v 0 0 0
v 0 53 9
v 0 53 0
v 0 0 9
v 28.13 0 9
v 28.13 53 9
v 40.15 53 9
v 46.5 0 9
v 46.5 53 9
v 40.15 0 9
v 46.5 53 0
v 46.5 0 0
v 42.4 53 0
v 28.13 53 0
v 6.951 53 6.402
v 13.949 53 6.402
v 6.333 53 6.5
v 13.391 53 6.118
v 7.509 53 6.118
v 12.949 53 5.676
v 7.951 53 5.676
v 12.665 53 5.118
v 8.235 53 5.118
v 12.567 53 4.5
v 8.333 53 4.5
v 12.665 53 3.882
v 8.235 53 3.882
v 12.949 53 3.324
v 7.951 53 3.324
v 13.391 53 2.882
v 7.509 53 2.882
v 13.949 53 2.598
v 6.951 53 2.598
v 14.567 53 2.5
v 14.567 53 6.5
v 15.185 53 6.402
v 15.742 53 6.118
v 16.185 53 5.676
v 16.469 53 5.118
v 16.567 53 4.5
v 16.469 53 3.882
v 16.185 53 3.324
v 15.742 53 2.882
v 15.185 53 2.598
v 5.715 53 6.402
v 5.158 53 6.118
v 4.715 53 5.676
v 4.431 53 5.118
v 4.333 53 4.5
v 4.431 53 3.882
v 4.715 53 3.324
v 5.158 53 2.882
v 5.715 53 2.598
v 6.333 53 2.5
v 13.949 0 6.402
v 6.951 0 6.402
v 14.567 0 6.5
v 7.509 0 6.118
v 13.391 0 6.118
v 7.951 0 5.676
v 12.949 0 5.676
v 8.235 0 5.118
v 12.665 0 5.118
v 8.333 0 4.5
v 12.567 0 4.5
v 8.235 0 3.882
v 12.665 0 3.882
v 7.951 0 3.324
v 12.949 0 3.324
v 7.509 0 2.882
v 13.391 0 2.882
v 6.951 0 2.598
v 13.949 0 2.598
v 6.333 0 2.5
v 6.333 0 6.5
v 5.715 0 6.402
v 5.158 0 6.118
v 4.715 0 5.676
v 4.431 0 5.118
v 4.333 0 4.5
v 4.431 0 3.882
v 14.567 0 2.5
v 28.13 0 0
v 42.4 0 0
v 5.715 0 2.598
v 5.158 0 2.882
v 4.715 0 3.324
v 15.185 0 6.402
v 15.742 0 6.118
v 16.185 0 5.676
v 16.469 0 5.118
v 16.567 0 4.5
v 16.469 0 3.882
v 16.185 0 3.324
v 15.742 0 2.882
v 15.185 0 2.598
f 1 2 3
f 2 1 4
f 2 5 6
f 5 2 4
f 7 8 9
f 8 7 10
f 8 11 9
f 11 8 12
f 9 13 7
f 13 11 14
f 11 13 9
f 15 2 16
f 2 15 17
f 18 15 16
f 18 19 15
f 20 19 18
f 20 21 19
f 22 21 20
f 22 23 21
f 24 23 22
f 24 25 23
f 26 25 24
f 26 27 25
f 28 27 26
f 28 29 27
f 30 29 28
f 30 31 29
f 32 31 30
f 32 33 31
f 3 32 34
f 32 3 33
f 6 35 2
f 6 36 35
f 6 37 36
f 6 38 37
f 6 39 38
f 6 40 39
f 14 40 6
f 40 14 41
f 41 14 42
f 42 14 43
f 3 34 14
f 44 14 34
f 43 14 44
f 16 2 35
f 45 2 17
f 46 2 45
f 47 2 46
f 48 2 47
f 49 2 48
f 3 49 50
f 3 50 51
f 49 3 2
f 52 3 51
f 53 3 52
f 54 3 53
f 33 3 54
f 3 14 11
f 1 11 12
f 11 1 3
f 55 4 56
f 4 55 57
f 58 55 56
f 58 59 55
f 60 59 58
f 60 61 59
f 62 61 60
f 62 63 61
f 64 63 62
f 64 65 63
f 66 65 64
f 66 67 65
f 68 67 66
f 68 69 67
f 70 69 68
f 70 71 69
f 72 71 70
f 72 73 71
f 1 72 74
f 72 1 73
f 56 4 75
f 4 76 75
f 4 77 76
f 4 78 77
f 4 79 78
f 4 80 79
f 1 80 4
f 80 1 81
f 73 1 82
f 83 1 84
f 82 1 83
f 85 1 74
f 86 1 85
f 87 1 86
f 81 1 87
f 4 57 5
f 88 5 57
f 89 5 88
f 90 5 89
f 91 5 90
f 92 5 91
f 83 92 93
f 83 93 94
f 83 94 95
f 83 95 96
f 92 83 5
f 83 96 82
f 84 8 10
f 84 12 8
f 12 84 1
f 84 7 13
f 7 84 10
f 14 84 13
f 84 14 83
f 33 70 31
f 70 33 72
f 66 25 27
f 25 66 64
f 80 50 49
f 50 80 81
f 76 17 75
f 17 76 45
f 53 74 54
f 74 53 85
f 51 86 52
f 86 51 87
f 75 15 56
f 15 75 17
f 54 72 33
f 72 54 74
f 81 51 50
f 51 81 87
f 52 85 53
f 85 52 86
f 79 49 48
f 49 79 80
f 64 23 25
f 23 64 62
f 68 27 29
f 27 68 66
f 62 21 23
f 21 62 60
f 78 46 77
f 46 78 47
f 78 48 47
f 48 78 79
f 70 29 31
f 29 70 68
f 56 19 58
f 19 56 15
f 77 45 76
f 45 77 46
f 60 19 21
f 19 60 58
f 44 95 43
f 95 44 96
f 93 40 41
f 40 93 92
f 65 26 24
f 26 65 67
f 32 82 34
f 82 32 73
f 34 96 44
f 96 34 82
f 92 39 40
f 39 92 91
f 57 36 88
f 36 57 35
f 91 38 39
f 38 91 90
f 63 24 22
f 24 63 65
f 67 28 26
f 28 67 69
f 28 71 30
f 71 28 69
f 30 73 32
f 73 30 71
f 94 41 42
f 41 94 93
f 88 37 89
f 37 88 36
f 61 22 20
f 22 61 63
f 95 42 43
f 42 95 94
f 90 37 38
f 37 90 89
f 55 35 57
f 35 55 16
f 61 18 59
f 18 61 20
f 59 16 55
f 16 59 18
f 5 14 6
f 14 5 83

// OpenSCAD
// file: chen_params.scad
main_board_width = 58;
main_board_thinkness = 3;
main_board_len = 70;

Chip_Extension=10;

up_board_x=main_board_width;
up_board_y=10;
up_board_z=50;

rack_thickness    = 10;
rack_movement_length = 25;
gear_scale = 0.8;
n1 = 20; //red gear number of teeth

n5 = 13;  //gray rack
mm_per_tooth = 5; //all meshing gears need the same mm_per_tooth (and the same pressure_angle)
tensioner_union_len =11;
servo_offset =  9;
servo_higeht = 30;
bracket_size=5;

bearing_rad = 1.7;
bearing_depth = 2.3;

prism_b = 12;
prism_a = 1.2 * prism_b ;
prism_h = prism_b * 0.8;  
prism_angle = atan(prism_h/(prism_a-prism_b)) ;
// main file
include <chen_params.scad>;
use <moreShapes.scad>;

holder_h = servo_offset;
x_offset = servo_higeht+8;
prism_len = n5*mm_per_tooth*1.6;
$fn = 20;



difference()
{
    cube([main_board_width-11.5, main_board_len-rack_movement_length+8, holder_h]);
 
  difference() {
  
    color("red")
    translate([servo_higeht-2,-.1,prism_h])
      rotate([-90,0,0]) 
        trapezoidPrism(prism_a,prism_b,prism_h,0,prism_len,false);
    


  }
  
  // holes for zip ties
  translate([x_offset/6,-1,4.5])
    rotate([-90,0,0]) 
      cylinder(r=2, h=main_board_len+2.5);
 
 translate([2.3*x_offset/6,-1,4.5])
   rotate([-90,0,0]) 
    cylinder(r=2, h=main_board_len+2.5);
 
 }

 
 // Get the size right
    translate([servo_higeht-12+0.13,0   ,0])
        color("green")
            cube([10,main_board_len-rack_movement_length+8,holder_h]);
   
